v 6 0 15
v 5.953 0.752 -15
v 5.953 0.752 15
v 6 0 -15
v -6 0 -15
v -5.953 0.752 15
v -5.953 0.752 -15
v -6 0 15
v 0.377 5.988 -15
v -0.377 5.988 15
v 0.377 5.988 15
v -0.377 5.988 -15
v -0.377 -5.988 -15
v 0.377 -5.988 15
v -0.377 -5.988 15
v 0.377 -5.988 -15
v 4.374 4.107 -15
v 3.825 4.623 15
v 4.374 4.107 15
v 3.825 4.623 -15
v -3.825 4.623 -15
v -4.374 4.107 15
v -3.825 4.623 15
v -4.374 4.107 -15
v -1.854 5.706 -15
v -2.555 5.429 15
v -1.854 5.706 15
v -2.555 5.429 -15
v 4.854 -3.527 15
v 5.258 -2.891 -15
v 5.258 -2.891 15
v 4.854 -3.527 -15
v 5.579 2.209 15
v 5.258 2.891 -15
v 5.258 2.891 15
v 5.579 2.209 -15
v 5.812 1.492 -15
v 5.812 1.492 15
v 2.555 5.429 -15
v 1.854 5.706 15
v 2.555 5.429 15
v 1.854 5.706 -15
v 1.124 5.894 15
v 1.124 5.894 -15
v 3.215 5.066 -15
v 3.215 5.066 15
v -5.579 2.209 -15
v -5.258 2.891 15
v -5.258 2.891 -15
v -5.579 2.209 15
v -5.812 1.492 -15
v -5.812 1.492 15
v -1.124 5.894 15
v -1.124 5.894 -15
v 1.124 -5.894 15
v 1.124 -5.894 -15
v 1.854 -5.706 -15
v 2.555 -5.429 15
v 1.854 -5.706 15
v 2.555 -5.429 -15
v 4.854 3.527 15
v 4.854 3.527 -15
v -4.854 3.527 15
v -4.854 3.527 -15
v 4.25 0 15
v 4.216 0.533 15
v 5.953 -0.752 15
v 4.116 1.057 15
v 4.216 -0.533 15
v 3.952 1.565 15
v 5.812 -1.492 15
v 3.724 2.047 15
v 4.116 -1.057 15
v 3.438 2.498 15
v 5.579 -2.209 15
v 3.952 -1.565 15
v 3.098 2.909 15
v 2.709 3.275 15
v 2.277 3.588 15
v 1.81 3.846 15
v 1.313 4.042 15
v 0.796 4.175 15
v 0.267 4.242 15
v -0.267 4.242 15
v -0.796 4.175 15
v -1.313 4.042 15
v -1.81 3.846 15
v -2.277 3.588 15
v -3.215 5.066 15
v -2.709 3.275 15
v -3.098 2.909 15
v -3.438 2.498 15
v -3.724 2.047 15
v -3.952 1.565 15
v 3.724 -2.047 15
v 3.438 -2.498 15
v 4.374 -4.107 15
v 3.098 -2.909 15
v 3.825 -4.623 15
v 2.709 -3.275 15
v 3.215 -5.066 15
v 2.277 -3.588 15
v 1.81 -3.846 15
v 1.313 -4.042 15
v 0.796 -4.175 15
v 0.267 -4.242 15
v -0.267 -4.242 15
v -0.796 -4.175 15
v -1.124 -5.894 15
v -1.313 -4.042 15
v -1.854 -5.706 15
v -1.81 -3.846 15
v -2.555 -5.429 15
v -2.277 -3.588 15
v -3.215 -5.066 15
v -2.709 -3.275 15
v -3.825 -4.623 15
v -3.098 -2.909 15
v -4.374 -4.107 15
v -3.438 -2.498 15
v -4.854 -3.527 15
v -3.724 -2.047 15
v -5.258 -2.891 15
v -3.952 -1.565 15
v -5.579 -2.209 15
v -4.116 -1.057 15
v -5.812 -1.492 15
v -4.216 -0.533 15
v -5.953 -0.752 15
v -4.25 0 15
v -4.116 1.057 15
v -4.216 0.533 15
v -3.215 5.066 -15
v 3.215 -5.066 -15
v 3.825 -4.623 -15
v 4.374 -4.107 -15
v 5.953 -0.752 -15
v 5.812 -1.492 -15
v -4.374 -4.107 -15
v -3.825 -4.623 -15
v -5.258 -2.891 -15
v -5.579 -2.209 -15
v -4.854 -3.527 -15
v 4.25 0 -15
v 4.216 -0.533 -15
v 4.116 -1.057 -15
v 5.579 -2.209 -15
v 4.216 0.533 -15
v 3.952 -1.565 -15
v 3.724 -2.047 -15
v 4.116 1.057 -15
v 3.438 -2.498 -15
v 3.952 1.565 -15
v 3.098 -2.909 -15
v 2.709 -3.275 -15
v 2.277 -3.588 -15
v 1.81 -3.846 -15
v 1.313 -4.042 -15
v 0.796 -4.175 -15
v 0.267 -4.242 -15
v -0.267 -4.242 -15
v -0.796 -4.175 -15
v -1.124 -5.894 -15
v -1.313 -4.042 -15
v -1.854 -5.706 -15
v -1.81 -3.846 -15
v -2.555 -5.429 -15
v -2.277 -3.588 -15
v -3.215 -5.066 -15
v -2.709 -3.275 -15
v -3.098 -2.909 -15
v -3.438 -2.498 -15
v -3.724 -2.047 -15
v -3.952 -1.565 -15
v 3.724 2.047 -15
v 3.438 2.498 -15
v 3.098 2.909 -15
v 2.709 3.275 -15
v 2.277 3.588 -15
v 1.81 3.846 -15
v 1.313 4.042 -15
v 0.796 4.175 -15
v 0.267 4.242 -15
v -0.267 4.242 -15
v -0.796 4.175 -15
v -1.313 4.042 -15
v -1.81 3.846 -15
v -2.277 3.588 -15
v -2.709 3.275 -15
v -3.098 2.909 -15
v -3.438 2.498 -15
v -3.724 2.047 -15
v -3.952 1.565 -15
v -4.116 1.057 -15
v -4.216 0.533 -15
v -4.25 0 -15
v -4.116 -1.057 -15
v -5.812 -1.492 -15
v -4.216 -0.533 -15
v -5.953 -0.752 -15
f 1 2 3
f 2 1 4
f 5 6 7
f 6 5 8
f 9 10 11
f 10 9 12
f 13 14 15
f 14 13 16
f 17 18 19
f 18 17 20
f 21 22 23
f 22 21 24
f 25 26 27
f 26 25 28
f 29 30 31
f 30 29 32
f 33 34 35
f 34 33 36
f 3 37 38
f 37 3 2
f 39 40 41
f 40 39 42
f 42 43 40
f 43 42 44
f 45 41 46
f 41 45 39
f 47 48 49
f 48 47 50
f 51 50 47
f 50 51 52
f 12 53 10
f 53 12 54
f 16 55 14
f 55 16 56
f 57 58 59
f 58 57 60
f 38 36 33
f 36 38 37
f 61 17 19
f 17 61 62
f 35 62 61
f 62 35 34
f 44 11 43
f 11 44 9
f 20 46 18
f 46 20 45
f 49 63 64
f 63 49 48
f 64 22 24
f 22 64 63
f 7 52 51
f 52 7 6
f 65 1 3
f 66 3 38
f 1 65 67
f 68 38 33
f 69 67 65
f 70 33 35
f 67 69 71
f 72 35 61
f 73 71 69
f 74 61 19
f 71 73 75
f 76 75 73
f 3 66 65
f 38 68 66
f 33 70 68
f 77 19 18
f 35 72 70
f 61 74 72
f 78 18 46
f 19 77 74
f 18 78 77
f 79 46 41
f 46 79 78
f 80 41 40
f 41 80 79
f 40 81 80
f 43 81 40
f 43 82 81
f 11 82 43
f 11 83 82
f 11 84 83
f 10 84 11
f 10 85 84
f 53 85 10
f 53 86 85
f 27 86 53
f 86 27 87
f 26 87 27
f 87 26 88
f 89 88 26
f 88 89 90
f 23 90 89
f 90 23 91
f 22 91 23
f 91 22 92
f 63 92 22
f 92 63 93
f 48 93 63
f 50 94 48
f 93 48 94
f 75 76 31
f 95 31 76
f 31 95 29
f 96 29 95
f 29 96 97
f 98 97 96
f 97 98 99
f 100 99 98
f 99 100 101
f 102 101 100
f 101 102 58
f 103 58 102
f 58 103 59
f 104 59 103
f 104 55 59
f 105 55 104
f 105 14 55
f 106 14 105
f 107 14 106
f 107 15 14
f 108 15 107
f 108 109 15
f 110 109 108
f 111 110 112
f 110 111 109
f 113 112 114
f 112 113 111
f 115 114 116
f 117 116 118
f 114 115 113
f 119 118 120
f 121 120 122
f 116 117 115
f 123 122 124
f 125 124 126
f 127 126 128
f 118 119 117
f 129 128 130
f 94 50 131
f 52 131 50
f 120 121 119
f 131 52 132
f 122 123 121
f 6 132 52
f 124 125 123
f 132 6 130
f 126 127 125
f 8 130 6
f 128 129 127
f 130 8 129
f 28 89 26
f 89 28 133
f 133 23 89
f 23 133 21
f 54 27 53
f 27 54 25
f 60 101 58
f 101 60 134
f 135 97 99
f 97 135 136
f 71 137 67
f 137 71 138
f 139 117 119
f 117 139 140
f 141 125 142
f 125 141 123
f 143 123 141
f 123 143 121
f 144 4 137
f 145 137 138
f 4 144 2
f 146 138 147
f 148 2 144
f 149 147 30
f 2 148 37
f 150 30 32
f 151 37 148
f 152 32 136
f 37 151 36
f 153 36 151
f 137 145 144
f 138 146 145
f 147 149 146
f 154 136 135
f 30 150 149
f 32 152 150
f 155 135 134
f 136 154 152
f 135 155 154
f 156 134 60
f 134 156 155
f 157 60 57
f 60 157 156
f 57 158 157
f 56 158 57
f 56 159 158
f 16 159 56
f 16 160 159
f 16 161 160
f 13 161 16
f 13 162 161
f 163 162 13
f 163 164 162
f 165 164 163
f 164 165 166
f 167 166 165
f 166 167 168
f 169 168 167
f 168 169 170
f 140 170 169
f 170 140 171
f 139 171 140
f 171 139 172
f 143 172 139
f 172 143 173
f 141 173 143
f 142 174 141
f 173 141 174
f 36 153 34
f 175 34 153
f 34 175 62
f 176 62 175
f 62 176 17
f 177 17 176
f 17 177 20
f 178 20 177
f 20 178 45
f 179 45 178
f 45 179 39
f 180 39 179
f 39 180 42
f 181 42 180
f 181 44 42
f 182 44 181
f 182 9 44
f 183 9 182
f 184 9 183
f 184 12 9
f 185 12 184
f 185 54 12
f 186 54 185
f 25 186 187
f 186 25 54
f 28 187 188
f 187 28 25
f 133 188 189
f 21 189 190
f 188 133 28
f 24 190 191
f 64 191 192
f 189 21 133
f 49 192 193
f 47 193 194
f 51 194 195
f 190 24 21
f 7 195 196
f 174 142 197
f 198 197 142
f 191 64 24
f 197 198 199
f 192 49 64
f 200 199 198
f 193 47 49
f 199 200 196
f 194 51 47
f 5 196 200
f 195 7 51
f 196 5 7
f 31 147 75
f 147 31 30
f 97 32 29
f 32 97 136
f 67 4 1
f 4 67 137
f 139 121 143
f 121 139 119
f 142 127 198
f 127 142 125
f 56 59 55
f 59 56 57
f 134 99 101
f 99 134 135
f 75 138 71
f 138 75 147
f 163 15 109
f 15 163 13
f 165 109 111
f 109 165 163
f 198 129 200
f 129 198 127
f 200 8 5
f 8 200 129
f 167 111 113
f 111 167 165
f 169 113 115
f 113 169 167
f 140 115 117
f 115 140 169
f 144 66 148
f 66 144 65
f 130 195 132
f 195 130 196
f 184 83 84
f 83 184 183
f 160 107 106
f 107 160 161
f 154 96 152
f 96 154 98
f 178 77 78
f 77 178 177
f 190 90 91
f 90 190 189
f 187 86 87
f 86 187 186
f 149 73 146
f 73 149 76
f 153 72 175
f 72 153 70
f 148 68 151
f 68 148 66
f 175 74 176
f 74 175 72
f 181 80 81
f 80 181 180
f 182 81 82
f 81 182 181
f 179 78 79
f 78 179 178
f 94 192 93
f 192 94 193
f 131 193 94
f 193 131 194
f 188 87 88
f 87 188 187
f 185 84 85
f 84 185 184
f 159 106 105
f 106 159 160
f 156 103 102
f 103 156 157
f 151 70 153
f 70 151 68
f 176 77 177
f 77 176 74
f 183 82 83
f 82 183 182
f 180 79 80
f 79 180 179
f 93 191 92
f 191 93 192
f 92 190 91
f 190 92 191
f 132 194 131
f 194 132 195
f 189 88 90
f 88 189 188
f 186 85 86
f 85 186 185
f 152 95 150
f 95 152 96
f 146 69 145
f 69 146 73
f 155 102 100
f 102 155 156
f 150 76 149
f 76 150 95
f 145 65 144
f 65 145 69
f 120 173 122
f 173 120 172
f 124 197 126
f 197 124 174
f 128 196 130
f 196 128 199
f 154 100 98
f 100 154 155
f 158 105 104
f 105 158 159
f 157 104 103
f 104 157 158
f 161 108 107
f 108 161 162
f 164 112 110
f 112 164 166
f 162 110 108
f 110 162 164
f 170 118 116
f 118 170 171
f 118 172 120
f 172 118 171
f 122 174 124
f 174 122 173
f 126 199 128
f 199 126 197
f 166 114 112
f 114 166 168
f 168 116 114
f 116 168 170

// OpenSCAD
$fn = 50;


difference() {
	union() {
		translate(v = [0, 0, -15.0000000000]) {
			cylinder(h = 30, r = 6.0000000000);
		}
	}
	union() {
		translate(v = [0, 0, -100.0000000000]) {
			cylinder(h = 200, r = 4.2500000000);
		}
	}
}
